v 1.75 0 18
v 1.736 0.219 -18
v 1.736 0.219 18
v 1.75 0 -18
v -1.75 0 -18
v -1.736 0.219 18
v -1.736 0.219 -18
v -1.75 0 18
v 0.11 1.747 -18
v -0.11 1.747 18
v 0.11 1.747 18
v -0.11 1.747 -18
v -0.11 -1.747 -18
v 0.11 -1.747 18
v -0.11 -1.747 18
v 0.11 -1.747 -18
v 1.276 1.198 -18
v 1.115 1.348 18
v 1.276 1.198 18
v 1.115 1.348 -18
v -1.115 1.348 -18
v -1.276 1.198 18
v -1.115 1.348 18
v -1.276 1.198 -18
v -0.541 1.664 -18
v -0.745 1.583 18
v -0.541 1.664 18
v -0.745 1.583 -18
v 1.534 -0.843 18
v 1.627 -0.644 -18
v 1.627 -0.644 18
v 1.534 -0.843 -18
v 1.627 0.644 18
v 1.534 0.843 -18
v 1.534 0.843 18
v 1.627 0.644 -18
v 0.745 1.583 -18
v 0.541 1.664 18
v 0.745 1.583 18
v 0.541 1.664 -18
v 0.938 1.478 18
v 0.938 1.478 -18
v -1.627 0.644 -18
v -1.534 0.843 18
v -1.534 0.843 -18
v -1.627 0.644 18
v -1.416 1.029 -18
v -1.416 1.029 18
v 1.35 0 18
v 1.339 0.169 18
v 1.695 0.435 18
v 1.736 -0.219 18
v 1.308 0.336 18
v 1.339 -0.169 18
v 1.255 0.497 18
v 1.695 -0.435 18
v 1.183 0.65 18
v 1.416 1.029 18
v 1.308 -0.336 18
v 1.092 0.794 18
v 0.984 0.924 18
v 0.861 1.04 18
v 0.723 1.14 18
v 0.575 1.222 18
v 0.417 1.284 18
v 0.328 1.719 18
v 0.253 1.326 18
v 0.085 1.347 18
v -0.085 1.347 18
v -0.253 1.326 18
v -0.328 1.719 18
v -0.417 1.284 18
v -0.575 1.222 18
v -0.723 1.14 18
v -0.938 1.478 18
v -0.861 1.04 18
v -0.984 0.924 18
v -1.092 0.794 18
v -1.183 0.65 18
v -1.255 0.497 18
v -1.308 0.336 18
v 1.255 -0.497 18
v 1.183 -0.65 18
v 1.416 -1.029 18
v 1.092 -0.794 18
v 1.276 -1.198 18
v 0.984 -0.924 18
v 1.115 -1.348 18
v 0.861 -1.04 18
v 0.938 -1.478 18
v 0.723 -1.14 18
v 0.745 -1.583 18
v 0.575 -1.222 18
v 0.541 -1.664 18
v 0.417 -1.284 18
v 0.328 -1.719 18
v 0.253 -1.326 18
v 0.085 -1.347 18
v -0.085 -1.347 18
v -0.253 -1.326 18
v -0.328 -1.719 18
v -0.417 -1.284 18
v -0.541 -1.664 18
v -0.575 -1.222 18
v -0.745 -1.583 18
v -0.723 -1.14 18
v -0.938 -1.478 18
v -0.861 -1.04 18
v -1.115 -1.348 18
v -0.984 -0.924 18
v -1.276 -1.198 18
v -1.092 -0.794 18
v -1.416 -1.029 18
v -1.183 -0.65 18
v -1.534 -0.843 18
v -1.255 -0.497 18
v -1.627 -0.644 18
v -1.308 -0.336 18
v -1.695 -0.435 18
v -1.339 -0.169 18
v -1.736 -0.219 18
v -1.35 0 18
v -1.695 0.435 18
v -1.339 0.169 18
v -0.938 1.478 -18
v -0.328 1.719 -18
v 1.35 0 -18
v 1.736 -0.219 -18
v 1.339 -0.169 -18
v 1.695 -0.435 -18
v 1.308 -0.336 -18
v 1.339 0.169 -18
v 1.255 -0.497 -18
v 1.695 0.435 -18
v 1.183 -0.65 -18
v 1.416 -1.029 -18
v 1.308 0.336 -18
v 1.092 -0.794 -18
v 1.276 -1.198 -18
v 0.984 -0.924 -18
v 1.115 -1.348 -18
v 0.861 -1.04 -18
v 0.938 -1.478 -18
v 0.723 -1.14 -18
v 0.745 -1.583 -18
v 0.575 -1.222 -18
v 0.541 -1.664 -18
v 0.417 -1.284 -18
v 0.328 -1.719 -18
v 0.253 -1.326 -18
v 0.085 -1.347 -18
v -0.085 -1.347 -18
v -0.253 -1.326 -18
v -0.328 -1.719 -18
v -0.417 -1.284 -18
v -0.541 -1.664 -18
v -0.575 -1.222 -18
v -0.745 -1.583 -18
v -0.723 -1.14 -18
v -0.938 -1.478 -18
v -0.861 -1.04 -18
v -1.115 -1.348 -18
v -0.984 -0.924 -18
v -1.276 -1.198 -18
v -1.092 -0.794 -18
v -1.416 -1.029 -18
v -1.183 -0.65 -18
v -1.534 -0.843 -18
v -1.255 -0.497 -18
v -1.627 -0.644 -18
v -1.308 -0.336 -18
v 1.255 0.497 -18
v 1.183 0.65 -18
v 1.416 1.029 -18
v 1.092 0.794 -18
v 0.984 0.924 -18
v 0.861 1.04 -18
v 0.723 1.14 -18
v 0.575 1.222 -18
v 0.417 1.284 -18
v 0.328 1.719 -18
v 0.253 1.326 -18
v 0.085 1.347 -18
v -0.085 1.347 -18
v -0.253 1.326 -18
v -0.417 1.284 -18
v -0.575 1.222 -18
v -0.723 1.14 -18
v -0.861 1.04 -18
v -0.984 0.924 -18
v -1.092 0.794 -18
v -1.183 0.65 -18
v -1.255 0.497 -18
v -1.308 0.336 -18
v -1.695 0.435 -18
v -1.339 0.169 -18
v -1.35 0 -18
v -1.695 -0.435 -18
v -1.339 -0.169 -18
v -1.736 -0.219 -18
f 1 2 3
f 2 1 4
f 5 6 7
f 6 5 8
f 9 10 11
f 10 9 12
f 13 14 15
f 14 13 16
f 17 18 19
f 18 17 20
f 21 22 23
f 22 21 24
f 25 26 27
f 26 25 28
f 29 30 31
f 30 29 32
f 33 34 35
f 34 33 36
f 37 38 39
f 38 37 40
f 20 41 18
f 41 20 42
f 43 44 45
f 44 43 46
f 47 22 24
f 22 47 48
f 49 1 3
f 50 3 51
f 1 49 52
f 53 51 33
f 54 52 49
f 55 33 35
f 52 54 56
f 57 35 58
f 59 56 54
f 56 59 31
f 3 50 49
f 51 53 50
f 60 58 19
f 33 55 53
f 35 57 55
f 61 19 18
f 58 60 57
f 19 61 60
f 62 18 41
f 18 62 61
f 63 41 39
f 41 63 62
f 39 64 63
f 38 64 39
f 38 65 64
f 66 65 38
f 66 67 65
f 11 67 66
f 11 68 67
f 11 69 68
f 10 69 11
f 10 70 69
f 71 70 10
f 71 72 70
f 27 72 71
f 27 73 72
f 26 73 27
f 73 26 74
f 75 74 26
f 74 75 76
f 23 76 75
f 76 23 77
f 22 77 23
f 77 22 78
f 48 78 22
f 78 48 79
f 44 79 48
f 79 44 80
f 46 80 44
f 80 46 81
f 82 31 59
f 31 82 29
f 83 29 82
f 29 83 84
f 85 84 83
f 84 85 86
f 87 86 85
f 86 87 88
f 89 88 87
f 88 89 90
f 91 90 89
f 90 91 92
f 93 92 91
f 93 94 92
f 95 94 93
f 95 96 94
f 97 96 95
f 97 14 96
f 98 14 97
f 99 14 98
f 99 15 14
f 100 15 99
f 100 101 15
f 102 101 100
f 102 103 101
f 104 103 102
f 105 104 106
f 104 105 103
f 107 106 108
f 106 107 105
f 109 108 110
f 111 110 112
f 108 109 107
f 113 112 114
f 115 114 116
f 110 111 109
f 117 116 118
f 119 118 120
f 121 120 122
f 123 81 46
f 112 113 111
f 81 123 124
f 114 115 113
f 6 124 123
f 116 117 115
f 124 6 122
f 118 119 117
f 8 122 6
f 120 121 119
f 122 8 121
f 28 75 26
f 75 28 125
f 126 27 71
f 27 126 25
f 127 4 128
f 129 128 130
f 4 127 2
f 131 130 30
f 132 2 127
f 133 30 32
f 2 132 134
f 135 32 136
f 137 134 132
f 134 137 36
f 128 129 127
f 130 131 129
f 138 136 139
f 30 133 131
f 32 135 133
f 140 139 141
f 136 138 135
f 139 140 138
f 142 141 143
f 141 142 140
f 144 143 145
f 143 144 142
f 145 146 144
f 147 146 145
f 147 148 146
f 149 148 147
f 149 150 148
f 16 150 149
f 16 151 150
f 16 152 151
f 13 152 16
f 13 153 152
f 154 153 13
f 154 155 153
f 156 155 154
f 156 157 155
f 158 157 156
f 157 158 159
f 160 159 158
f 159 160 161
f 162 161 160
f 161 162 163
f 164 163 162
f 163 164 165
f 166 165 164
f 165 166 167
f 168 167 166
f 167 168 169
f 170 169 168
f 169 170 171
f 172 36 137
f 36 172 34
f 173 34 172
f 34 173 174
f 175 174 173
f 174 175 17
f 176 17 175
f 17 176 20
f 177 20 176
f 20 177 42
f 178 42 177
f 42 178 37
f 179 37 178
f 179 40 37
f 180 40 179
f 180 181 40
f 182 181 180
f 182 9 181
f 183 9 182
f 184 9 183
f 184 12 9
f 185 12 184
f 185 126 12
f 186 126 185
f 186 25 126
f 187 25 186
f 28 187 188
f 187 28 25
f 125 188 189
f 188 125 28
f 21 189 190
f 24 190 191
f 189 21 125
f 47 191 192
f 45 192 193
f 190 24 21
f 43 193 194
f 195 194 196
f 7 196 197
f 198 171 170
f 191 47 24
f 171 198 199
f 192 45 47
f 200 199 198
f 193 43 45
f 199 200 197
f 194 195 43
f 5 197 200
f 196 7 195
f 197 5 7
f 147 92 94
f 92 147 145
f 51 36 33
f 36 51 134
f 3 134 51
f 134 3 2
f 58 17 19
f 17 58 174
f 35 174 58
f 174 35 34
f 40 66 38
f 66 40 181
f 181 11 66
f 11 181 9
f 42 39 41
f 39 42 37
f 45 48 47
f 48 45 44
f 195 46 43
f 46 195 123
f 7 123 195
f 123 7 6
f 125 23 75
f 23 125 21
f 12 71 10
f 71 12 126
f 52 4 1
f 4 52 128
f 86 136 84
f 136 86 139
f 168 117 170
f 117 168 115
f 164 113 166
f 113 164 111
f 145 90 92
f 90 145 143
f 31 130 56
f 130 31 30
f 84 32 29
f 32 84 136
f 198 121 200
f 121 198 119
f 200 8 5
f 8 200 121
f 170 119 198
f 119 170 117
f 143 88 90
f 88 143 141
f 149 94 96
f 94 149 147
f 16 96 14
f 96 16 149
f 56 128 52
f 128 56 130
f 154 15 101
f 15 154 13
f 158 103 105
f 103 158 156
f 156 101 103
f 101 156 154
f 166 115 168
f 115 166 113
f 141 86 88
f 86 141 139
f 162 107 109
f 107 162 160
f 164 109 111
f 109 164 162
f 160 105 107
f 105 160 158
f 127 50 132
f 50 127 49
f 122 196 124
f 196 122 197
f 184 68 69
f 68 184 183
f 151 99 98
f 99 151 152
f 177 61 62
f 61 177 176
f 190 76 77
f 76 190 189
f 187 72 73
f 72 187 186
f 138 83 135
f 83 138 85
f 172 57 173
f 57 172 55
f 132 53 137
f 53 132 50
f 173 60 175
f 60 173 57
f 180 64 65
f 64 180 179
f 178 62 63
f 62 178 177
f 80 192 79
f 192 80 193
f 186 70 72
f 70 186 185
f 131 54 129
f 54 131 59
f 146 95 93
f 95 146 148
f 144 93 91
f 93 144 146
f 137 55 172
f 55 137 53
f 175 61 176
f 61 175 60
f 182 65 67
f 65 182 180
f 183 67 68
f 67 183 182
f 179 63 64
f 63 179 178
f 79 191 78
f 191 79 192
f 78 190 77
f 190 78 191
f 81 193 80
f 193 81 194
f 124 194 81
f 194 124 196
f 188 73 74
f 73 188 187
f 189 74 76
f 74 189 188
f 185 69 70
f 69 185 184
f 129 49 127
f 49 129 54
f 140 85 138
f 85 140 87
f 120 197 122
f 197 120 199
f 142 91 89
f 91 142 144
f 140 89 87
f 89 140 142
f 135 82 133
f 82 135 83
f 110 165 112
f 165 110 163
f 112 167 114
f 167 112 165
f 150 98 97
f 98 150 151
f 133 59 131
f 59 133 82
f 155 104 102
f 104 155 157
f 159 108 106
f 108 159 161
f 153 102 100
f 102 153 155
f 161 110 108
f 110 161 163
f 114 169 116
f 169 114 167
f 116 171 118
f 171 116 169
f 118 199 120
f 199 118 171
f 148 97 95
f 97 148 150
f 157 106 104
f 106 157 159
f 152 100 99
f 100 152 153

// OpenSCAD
$fn = 50;


difference() {
	union() {
		translate(v = [0, 0, -18.0000000000]) {
			cylinder(h = 36, r = 1.7500000000);
		}
	}
	union() {
		translate(v = [0, 0, -100.0000000000]) {
			cylinder(h = 200, r = 1.3500000000);
		}
	}
}
